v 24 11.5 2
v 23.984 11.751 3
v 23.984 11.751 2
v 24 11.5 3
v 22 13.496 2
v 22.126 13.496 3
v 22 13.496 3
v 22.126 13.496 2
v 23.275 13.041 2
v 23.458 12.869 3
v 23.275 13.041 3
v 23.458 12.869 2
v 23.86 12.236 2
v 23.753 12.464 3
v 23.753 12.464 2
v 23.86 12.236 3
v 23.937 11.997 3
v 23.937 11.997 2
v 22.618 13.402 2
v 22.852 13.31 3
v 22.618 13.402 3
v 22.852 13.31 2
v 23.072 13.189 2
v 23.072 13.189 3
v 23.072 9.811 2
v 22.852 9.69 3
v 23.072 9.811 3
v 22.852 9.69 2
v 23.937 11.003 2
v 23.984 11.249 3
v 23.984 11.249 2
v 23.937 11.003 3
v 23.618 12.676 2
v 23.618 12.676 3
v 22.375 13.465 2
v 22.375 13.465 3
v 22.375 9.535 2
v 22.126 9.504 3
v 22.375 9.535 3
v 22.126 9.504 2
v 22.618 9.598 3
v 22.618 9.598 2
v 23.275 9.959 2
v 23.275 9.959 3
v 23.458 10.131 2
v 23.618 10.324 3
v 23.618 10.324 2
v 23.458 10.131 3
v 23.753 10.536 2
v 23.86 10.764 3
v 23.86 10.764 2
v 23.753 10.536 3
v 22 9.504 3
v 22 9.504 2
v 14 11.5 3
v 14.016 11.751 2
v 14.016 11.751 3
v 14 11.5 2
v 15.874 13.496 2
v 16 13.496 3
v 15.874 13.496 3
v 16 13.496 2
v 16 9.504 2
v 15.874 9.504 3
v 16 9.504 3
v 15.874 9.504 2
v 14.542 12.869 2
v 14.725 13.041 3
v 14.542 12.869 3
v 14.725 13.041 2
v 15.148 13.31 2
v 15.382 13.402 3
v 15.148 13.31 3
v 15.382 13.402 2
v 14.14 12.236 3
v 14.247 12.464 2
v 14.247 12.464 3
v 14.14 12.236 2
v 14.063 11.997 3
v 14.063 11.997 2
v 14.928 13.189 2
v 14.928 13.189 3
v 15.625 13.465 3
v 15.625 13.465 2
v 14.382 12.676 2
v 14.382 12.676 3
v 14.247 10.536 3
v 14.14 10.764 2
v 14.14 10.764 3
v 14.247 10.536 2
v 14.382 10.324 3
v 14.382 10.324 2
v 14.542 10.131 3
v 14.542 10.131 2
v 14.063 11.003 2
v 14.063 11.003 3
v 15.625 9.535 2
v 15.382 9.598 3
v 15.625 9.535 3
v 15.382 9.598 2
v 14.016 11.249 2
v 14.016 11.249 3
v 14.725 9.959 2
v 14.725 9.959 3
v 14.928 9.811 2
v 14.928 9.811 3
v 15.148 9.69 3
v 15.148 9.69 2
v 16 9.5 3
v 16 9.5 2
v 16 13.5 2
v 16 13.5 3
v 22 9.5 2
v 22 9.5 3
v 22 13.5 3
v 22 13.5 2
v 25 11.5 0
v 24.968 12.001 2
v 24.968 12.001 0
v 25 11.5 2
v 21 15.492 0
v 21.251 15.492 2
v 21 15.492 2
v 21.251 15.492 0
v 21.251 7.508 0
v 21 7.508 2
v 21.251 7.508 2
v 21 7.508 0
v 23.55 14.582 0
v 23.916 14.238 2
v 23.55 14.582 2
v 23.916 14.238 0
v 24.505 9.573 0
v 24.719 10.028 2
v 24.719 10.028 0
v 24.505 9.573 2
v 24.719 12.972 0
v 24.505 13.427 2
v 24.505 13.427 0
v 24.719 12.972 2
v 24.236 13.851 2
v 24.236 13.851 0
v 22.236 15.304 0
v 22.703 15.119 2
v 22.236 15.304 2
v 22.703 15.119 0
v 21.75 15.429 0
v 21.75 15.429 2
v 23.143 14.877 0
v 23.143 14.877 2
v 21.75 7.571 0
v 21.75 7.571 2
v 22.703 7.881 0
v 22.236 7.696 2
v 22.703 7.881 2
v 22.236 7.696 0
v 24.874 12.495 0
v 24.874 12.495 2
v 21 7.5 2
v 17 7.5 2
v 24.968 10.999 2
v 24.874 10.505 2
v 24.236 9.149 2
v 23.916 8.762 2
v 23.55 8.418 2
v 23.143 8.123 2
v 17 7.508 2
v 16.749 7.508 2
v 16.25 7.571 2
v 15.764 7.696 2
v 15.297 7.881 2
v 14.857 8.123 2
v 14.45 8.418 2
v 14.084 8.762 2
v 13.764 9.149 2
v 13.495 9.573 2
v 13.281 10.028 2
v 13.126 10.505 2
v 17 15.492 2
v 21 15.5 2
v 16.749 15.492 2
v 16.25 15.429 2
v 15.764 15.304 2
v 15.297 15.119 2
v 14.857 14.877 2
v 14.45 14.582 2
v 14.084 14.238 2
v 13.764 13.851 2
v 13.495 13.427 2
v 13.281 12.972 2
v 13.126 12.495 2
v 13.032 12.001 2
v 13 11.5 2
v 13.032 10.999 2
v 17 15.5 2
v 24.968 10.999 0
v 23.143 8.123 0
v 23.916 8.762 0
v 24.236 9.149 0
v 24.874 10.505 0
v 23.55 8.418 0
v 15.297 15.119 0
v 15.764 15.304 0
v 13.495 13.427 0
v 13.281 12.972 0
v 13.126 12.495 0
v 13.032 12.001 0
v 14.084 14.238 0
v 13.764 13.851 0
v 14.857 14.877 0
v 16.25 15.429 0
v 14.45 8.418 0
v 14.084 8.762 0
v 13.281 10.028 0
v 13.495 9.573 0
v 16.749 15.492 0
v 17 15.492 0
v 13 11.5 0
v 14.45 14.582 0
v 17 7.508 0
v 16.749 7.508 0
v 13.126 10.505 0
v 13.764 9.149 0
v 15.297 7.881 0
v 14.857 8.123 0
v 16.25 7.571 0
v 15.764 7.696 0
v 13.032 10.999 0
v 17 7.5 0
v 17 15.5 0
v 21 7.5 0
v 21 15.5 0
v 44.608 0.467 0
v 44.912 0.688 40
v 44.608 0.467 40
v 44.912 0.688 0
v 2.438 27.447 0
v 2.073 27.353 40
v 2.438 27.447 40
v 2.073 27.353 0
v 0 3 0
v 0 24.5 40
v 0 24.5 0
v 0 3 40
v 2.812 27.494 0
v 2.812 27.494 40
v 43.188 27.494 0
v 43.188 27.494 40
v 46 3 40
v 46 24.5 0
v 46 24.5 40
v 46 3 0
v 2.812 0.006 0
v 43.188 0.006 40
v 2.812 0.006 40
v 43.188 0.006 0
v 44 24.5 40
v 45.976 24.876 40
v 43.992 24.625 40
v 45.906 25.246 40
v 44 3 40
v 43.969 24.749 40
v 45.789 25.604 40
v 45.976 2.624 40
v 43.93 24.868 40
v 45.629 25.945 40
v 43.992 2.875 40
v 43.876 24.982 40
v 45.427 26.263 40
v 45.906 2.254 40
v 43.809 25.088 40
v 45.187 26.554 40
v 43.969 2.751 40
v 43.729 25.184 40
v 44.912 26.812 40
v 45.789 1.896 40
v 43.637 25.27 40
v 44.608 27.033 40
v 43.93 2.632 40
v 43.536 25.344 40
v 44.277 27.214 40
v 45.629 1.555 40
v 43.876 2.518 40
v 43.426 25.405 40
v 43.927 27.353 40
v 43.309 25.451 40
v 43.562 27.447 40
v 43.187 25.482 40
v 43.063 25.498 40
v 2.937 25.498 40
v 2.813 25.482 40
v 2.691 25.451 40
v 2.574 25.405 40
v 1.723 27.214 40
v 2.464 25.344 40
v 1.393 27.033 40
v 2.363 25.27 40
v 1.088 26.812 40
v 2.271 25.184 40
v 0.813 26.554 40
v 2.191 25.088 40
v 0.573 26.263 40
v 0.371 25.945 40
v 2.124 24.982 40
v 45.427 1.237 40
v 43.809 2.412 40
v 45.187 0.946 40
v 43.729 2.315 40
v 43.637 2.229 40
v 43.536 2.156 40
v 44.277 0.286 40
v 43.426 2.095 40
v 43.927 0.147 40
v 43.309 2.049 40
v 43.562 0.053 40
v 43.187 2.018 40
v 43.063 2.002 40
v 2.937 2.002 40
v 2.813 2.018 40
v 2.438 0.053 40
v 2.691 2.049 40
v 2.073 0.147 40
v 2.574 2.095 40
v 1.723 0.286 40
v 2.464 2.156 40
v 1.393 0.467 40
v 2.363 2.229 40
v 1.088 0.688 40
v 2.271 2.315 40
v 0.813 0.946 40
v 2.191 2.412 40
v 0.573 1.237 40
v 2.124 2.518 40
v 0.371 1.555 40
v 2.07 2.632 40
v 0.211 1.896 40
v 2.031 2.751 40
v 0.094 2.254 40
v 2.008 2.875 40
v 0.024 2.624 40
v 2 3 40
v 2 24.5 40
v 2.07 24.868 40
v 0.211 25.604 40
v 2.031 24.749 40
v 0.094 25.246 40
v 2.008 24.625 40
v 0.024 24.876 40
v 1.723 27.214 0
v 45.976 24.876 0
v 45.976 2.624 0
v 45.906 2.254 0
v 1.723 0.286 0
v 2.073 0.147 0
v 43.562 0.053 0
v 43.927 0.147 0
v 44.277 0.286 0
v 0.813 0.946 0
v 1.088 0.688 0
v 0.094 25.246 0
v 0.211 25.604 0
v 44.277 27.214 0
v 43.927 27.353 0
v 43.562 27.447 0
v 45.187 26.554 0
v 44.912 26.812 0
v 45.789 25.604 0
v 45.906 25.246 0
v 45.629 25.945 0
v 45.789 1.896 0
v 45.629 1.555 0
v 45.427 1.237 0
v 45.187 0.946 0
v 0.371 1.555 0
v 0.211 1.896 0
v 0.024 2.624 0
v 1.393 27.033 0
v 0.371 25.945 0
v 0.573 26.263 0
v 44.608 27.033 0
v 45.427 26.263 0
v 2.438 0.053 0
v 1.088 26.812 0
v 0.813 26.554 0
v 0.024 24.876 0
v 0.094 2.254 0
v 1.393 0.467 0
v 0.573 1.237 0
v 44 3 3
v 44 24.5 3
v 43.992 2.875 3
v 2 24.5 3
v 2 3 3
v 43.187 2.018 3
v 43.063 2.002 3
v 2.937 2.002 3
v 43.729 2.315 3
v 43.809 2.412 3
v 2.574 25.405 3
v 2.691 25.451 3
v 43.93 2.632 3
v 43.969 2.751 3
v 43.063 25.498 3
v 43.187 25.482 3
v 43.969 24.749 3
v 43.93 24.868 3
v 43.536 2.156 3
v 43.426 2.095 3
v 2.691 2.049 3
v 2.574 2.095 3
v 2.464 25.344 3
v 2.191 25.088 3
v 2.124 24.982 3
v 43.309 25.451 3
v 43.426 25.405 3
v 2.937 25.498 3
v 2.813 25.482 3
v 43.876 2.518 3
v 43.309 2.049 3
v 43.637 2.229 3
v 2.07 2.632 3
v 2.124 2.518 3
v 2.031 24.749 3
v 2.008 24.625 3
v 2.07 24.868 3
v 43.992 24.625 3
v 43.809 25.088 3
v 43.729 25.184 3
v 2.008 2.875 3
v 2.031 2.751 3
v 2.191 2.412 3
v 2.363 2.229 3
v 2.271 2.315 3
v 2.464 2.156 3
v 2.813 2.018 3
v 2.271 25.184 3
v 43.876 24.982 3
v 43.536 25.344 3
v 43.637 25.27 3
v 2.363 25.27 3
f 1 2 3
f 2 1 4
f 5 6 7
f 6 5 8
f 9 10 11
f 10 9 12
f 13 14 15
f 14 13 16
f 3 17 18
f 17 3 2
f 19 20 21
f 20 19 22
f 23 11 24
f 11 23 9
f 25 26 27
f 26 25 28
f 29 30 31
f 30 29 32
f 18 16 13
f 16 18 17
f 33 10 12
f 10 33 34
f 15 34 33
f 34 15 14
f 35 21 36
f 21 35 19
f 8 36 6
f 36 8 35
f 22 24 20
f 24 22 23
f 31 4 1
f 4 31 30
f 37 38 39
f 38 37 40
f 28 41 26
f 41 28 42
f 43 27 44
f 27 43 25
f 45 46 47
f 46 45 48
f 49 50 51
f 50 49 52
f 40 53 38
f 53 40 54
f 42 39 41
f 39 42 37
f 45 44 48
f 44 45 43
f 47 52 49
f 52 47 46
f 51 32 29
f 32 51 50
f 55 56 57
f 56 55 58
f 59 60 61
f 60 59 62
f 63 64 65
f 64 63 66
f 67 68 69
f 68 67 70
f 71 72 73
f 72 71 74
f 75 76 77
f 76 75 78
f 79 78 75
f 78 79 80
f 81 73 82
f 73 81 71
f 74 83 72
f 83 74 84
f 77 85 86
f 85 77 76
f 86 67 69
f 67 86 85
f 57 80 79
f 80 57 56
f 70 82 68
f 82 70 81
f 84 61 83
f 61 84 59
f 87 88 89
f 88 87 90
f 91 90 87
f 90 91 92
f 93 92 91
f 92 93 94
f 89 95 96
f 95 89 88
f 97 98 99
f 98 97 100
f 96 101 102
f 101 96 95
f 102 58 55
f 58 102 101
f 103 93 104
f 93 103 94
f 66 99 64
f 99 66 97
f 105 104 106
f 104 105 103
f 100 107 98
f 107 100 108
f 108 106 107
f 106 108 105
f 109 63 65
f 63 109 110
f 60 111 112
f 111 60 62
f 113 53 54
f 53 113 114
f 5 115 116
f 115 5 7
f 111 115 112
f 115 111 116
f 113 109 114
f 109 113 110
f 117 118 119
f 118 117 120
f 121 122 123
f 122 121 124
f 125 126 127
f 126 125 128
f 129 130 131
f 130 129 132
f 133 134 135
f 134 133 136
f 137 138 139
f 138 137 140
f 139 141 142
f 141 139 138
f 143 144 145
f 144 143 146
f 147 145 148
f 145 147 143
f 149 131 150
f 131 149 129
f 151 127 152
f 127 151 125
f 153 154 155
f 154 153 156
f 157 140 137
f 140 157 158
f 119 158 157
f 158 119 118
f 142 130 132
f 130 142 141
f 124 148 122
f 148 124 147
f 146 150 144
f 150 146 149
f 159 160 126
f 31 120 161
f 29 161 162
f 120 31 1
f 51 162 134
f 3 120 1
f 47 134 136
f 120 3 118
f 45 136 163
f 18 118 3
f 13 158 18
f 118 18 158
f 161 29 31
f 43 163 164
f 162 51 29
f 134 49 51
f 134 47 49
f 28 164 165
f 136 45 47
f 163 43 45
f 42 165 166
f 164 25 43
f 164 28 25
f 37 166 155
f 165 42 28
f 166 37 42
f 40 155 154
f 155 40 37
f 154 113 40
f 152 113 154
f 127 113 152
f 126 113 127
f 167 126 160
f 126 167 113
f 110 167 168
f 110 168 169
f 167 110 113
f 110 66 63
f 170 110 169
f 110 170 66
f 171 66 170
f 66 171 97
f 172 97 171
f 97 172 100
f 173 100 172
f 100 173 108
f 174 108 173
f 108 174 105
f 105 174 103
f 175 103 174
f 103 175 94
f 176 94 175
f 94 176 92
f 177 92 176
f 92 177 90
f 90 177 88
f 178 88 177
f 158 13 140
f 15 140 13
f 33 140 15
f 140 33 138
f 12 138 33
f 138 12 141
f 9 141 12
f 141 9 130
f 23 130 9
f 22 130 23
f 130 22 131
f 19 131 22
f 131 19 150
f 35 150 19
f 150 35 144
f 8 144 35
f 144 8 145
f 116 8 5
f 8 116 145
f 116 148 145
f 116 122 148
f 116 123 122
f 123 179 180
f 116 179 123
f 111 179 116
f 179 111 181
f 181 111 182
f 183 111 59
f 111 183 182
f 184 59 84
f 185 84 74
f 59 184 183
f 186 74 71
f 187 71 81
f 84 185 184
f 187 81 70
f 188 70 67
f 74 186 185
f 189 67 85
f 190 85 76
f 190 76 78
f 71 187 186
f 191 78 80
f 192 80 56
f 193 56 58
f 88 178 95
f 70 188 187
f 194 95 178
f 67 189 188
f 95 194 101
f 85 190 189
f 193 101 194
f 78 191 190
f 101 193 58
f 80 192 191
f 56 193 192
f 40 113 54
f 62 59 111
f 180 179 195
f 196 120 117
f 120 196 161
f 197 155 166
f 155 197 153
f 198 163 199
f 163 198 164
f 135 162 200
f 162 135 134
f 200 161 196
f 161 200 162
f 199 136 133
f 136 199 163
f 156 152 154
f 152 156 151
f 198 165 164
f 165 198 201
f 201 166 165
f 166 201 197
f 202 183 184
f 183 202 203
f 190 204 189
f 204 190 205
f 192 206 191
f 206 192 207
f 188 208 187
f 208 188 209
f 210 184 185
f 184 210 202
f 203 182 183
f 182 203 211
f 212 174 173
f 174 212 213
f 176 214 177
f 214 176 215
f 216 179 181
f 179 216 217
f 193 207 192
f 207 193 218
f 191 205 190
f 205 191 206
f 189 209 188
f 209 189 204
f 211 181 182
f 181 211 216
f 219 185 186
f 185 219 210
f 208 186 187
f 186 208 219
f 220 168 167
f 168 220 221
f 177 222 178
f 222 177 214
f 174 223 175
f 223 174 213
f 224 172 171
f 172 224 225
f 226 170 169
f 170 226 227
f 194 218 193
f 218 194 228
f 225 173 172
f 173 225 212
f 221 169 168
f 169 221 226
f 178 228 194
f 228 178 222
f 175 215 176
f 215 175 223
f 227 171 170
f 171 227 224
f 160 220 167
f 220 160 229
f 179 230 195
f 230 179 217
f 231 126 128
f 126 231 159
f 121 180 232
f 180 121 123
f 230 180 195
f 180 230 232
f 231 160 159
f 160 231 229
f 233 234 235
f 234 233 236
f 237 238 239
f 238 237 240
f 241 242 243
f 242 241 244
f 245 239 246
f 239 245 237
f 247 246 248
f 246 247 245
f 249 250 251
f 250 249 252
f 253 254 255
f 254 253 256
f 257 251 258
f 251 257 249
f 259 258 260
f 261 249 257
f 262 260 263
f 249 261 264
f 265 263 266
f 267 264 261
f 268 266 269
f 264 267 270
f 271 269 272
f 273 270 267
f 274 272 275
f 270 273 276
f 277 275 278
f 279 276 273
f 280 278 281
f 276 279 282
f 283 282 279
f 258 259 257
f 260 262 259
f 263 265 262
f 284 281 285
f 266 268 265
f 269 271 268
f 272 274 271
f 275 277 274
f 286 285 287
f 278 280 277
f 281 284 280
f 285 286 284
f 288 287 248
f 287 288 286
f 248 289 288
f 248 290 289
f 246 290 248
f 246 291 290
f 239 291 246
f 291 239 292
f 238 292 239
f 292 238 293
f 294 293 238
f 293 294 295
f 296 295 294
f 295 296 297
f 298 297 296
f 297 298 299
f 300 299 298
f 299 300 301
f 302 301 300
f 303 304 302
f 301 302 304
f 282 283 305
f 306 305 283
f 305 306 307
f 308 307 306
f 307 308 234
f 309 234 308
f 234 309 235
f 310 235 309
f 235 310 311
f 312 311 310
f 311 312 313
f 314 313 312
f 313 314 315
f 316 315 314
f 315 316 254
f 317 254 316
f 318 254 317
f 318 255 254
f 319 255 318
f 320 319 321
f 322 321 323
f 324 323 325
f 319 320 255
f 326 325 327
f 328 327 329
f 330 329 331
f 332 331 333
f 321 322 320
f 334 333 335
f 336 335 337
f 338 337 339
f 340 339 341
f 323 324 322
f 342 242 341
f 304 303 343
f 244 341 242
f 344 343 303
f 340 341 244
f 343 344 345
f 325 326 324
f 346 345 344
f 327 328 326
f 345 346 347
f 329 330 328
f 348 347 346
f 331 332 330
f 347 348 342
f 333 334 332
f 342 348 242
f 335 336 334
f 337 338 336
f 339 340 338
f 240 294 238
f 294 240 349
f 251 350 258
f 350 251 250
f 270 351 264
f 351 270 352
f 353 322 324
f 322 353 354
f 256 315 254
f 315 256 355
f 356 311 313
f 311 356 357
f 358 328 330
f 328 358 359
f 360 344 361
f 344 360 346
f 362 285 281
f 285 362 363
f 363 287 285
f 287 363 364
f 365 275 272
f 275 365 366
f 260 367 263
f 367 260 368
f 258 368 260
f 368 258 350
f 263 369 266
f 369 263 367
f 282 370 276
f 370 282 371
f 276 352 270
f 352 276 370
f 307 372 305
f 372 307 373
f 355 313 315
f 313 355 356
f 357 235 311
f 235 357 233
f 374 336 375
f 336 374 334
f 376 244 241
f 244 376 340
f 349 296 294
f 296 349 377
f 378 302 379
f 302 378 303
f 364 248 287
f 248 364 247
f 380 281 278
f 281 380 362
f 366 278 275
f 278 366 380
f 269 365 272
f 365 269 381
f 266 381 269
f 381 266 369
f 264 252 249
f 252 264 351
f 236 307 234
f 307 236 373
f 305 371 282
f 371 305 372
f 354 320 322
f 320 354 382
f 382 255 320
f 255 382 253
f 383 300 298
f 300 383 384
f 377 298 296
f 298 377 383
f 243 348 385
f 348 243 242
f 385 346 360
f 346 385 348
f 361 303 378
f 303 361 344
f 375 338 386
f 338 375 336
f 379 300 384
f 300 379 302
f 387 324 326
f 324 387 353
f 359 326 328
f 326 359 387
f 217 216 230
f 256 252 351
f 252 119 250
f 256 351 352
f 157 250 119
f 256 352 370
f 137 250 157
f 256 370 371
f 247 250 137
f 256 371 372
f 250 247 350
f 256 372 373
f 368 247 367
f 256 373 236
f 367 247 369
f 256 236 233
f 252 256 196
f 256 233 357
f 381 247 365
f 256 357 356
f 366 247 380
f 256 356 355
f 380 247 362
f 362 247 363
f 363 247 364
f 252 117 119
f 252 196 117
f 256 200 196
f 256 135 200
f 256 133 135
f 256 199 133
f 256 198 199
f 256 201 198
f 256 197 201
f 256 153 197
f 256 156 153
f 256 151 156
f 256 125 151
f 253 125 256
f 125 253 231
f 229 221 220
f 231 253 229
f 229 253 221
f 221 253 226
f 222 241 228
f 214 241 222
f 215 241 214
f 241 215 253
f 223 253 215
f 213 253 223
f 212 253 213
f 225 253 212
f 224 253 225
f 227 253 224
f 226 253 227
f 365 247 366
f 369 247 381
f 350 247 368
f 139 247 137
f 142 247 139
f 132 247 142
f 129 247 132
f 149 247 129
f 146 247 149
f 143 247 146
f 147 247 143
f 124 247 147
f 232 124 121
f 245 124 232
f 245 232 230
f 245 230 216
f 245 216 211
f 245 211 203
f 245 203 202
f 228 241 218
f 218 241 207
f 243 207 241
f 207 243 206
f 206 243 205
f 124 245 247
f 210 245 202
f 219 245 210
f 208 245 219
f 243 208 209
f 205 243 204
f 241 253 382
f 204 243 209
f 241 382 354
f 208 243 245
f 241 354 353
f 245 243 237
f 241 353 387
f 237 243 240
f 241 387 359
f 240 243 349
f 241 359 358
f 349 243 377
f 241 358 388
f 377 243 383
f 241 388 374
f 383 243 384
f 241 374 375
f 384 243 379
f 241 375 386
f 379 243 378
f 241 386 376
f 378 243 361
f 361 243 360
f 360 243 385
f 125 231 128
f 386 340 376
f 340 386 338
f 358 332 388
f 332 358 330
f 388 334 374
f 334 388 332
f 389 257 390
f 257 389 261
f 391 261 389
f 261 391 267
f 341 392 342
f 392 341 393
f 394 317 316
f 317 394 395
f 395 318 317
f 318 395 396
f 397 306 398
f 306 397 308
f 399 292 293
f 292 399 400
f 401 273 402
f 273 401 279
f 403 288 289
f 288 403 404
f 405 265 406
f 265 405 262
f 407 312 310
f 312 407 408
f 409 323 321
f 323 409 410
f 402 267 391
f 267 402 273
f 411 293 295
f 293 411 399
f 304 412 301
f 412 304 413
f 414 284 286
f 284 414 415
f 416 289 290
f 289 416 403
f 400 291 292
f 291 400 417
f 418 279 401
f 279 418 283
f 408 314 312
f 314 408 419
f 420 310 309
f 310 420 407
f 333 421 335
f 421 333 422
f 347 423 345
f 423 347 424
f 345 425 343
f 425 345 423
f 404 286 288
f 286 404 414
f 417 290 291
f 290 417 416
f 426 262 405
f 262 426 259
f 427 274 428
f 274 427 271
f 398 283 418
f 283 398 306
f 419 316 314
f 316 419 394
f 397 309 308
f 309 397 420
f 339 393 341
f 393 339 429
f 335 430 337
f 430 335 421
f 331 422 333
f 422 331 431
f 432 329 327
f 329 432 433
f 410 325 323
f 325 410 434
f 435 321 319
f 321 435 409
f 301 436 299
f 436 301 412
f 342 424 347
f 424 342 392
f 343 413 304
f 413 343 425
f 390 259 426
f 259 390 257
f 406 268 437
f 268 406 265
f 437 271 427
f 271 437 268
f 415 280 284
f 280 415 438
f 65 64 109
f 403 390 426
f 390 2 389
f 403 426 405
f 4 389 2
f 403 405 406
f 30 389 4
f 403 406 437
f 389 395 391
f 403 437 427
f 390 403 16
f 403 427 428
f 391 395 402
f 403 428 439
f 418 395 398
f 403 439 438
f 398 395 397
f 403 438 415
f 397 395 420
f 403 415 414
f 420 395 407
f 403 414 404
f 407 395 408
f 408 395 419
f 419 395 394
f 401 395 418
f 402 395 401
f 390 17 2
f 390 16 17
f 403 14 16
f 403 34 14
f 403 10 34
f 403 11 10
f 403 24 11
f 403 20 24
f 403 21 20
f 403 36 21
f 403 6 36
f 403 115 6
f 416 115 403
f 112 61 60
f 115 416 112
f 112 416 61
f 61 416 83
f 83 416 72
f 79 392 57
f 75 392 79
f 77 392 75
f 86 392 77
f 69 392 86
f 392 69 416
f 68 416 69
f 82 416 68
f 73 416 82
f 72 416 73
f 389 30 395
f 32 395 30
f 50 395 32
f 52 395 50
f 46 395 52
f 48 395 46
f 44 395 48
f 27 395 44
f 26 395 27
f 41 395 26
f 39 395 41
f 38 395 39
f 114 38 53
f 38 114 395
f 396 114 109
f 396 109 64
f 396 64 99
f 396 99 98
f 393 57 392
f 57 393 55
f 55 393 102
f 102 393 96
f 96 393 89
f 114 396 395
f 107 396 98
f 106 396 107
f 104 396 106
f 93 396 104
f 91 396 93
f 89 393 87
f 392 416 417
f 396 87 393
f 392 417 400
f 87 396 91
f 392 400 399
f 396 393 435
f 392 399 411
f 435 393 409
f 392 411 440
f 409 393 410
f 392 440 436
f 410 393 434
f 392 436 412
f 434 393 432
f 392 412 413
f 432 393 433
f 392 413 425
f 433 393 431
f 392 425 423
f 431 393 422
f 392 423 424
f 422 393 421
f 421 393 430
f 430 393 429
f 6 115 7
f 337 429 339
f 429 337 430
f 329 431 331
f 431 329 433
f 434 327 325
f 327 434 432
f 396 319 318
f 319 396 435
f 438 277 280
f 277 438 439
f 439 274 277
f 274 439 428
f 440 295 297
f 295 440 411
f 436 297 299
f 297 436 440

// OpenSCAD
// Simple Cover for the Iridium Solar Beacon with USB opening

$fn=50; // fragments
wall = 2.0; // wall thickness
end_wall = 3.0; // end wall thickness
internal_width = 42.0; // internal width (X) of the cover
internal_depth = 23.5; // internal depth (Y) of the cover
internal_height = 36.0; // internal height (Z) of the cover
lid_insert = 1.0; // extra height for the lid insert

internal_corner_radius = 1.0; // radius of the internal corner cylinder

usb_r = 2.0; // radius of the opening for the USB connector
usb_width = 10.0; // total width of the opening for the USB
usb_height = 1.0; // thickness of the opening for the USB connector
usb_recess_r = 4.0; // radius of the recess for the USB connector body
usb_recess_width = 12.0; // total width of the recess for the USB connector body
usb_x_offset = -4.0; // X offset of the USB connector
usb_y_offset = 2.25; // y offset of the USB connector

height = internal_height + end_wall + lid_insert; // cover external height (Z)
width = internal_width + (2 * wall); // cover external width (X)
depth = internal_depth + (2 * wall); // cover external depth (Y)

external_corner_radius = internal_corner_radius + wall; // external corner radius

module cover()
{
    translate([external_corner_radius, external_corner_radius, 0])
        minkowski() {
            cube([(width - (2 * external_corner_radius)), (depth - (2 * external_corner_radius)), (height / 2)]);
            cylinder(h=(height / 2), r=external_corner_radius);
        }
}

module void()
// Void will be higher than required to avoid zero thickness skin across opening
{
    translate([external_corner_radius, external_corner_radius, end_wall])
        minkowski() {
            cube([(internal_width - (2 * internal_corner_radius)), (internal_depth - (2 * internal_corner_radius)), (height / 2)]);
            cylinder(h=(height / 2), r=internal_corner_radius);
        }
}

module usb_opening_end_1()
// Cylinder is taller than it needs to be to avoid zero thickness skins
{
    translate([((usb_width / 2) - usb_r),0,usb_height]) {
        cylinder(h=end_wall,r=usb_r);
    }
}

module usb_opening_end_2()
// Cylinder is taller than it needs to be to avoid zero thickness skins
{
    translate([(0-((usb_width / 2) - usb_r)),0,usb_height]) {
        cylinder(h=end_wall,r=usb_r);
    }
}

module usb_opening_mid()
// Cube is taller than it needs to be to avoid zero thickness skins
{
    translate([(-0.5 * (usb_width - (2 * usb_r))), (-0.5 * (2 * usb_r)), usb_height]) {
        cube([(usb_width - (2 * usb_r)), (2 * usb_r), end_wall]);
    }
}

module usb_recess_end_1()
// Cylinder is taller than it needs to be to avoid zero thickness skins
{
    translate([((usb_recess_width / 2) - usb_recess_r), 0, (0 - usb_height)]) {
        cylinder(h=end_wall, r=usb_recess_r);
    }
}

module usb_recess_end_2()
// Cylinder is taller than it needs to be to avoid zero thickness skins
{
    translate([(0-((usb_recess_width / 2) - usb_recess_r)), 0, (0 - usb_height)]) {
        cylinder(h=end_wall, r=usb_recess_r);
    }
}

module usb_recess_mid()
// Cube is taller than it needs to be to avoid zero thickness skins
{
    translate([(-0.5 * (usb_recess_width - (2 * usb_recess_r))), (-0.5 * (2 * usb_recess_r)), (0 - usb_height)]) {
        cube([(usb_recess_width - (2 * usb_recess_r)), (2 * usb_recess_r), end_wall]);
    }
}

module usb()
{
    translate([((width / 2) + usb_x_offset), ((depth / 2) - usb_y_offset), 0]) {
        union() {
            usb_opening_end_1();
            usb_opening_end_2();
            usb_opening_mid();
            usb_recess_end_1();
            usb_recess_end_2();
            usb_recess_mid();
        }
    }
}

module finished_cover()
{
    difference() {
        cover();
        void();
        usb();
    }
}

finished_cover();
